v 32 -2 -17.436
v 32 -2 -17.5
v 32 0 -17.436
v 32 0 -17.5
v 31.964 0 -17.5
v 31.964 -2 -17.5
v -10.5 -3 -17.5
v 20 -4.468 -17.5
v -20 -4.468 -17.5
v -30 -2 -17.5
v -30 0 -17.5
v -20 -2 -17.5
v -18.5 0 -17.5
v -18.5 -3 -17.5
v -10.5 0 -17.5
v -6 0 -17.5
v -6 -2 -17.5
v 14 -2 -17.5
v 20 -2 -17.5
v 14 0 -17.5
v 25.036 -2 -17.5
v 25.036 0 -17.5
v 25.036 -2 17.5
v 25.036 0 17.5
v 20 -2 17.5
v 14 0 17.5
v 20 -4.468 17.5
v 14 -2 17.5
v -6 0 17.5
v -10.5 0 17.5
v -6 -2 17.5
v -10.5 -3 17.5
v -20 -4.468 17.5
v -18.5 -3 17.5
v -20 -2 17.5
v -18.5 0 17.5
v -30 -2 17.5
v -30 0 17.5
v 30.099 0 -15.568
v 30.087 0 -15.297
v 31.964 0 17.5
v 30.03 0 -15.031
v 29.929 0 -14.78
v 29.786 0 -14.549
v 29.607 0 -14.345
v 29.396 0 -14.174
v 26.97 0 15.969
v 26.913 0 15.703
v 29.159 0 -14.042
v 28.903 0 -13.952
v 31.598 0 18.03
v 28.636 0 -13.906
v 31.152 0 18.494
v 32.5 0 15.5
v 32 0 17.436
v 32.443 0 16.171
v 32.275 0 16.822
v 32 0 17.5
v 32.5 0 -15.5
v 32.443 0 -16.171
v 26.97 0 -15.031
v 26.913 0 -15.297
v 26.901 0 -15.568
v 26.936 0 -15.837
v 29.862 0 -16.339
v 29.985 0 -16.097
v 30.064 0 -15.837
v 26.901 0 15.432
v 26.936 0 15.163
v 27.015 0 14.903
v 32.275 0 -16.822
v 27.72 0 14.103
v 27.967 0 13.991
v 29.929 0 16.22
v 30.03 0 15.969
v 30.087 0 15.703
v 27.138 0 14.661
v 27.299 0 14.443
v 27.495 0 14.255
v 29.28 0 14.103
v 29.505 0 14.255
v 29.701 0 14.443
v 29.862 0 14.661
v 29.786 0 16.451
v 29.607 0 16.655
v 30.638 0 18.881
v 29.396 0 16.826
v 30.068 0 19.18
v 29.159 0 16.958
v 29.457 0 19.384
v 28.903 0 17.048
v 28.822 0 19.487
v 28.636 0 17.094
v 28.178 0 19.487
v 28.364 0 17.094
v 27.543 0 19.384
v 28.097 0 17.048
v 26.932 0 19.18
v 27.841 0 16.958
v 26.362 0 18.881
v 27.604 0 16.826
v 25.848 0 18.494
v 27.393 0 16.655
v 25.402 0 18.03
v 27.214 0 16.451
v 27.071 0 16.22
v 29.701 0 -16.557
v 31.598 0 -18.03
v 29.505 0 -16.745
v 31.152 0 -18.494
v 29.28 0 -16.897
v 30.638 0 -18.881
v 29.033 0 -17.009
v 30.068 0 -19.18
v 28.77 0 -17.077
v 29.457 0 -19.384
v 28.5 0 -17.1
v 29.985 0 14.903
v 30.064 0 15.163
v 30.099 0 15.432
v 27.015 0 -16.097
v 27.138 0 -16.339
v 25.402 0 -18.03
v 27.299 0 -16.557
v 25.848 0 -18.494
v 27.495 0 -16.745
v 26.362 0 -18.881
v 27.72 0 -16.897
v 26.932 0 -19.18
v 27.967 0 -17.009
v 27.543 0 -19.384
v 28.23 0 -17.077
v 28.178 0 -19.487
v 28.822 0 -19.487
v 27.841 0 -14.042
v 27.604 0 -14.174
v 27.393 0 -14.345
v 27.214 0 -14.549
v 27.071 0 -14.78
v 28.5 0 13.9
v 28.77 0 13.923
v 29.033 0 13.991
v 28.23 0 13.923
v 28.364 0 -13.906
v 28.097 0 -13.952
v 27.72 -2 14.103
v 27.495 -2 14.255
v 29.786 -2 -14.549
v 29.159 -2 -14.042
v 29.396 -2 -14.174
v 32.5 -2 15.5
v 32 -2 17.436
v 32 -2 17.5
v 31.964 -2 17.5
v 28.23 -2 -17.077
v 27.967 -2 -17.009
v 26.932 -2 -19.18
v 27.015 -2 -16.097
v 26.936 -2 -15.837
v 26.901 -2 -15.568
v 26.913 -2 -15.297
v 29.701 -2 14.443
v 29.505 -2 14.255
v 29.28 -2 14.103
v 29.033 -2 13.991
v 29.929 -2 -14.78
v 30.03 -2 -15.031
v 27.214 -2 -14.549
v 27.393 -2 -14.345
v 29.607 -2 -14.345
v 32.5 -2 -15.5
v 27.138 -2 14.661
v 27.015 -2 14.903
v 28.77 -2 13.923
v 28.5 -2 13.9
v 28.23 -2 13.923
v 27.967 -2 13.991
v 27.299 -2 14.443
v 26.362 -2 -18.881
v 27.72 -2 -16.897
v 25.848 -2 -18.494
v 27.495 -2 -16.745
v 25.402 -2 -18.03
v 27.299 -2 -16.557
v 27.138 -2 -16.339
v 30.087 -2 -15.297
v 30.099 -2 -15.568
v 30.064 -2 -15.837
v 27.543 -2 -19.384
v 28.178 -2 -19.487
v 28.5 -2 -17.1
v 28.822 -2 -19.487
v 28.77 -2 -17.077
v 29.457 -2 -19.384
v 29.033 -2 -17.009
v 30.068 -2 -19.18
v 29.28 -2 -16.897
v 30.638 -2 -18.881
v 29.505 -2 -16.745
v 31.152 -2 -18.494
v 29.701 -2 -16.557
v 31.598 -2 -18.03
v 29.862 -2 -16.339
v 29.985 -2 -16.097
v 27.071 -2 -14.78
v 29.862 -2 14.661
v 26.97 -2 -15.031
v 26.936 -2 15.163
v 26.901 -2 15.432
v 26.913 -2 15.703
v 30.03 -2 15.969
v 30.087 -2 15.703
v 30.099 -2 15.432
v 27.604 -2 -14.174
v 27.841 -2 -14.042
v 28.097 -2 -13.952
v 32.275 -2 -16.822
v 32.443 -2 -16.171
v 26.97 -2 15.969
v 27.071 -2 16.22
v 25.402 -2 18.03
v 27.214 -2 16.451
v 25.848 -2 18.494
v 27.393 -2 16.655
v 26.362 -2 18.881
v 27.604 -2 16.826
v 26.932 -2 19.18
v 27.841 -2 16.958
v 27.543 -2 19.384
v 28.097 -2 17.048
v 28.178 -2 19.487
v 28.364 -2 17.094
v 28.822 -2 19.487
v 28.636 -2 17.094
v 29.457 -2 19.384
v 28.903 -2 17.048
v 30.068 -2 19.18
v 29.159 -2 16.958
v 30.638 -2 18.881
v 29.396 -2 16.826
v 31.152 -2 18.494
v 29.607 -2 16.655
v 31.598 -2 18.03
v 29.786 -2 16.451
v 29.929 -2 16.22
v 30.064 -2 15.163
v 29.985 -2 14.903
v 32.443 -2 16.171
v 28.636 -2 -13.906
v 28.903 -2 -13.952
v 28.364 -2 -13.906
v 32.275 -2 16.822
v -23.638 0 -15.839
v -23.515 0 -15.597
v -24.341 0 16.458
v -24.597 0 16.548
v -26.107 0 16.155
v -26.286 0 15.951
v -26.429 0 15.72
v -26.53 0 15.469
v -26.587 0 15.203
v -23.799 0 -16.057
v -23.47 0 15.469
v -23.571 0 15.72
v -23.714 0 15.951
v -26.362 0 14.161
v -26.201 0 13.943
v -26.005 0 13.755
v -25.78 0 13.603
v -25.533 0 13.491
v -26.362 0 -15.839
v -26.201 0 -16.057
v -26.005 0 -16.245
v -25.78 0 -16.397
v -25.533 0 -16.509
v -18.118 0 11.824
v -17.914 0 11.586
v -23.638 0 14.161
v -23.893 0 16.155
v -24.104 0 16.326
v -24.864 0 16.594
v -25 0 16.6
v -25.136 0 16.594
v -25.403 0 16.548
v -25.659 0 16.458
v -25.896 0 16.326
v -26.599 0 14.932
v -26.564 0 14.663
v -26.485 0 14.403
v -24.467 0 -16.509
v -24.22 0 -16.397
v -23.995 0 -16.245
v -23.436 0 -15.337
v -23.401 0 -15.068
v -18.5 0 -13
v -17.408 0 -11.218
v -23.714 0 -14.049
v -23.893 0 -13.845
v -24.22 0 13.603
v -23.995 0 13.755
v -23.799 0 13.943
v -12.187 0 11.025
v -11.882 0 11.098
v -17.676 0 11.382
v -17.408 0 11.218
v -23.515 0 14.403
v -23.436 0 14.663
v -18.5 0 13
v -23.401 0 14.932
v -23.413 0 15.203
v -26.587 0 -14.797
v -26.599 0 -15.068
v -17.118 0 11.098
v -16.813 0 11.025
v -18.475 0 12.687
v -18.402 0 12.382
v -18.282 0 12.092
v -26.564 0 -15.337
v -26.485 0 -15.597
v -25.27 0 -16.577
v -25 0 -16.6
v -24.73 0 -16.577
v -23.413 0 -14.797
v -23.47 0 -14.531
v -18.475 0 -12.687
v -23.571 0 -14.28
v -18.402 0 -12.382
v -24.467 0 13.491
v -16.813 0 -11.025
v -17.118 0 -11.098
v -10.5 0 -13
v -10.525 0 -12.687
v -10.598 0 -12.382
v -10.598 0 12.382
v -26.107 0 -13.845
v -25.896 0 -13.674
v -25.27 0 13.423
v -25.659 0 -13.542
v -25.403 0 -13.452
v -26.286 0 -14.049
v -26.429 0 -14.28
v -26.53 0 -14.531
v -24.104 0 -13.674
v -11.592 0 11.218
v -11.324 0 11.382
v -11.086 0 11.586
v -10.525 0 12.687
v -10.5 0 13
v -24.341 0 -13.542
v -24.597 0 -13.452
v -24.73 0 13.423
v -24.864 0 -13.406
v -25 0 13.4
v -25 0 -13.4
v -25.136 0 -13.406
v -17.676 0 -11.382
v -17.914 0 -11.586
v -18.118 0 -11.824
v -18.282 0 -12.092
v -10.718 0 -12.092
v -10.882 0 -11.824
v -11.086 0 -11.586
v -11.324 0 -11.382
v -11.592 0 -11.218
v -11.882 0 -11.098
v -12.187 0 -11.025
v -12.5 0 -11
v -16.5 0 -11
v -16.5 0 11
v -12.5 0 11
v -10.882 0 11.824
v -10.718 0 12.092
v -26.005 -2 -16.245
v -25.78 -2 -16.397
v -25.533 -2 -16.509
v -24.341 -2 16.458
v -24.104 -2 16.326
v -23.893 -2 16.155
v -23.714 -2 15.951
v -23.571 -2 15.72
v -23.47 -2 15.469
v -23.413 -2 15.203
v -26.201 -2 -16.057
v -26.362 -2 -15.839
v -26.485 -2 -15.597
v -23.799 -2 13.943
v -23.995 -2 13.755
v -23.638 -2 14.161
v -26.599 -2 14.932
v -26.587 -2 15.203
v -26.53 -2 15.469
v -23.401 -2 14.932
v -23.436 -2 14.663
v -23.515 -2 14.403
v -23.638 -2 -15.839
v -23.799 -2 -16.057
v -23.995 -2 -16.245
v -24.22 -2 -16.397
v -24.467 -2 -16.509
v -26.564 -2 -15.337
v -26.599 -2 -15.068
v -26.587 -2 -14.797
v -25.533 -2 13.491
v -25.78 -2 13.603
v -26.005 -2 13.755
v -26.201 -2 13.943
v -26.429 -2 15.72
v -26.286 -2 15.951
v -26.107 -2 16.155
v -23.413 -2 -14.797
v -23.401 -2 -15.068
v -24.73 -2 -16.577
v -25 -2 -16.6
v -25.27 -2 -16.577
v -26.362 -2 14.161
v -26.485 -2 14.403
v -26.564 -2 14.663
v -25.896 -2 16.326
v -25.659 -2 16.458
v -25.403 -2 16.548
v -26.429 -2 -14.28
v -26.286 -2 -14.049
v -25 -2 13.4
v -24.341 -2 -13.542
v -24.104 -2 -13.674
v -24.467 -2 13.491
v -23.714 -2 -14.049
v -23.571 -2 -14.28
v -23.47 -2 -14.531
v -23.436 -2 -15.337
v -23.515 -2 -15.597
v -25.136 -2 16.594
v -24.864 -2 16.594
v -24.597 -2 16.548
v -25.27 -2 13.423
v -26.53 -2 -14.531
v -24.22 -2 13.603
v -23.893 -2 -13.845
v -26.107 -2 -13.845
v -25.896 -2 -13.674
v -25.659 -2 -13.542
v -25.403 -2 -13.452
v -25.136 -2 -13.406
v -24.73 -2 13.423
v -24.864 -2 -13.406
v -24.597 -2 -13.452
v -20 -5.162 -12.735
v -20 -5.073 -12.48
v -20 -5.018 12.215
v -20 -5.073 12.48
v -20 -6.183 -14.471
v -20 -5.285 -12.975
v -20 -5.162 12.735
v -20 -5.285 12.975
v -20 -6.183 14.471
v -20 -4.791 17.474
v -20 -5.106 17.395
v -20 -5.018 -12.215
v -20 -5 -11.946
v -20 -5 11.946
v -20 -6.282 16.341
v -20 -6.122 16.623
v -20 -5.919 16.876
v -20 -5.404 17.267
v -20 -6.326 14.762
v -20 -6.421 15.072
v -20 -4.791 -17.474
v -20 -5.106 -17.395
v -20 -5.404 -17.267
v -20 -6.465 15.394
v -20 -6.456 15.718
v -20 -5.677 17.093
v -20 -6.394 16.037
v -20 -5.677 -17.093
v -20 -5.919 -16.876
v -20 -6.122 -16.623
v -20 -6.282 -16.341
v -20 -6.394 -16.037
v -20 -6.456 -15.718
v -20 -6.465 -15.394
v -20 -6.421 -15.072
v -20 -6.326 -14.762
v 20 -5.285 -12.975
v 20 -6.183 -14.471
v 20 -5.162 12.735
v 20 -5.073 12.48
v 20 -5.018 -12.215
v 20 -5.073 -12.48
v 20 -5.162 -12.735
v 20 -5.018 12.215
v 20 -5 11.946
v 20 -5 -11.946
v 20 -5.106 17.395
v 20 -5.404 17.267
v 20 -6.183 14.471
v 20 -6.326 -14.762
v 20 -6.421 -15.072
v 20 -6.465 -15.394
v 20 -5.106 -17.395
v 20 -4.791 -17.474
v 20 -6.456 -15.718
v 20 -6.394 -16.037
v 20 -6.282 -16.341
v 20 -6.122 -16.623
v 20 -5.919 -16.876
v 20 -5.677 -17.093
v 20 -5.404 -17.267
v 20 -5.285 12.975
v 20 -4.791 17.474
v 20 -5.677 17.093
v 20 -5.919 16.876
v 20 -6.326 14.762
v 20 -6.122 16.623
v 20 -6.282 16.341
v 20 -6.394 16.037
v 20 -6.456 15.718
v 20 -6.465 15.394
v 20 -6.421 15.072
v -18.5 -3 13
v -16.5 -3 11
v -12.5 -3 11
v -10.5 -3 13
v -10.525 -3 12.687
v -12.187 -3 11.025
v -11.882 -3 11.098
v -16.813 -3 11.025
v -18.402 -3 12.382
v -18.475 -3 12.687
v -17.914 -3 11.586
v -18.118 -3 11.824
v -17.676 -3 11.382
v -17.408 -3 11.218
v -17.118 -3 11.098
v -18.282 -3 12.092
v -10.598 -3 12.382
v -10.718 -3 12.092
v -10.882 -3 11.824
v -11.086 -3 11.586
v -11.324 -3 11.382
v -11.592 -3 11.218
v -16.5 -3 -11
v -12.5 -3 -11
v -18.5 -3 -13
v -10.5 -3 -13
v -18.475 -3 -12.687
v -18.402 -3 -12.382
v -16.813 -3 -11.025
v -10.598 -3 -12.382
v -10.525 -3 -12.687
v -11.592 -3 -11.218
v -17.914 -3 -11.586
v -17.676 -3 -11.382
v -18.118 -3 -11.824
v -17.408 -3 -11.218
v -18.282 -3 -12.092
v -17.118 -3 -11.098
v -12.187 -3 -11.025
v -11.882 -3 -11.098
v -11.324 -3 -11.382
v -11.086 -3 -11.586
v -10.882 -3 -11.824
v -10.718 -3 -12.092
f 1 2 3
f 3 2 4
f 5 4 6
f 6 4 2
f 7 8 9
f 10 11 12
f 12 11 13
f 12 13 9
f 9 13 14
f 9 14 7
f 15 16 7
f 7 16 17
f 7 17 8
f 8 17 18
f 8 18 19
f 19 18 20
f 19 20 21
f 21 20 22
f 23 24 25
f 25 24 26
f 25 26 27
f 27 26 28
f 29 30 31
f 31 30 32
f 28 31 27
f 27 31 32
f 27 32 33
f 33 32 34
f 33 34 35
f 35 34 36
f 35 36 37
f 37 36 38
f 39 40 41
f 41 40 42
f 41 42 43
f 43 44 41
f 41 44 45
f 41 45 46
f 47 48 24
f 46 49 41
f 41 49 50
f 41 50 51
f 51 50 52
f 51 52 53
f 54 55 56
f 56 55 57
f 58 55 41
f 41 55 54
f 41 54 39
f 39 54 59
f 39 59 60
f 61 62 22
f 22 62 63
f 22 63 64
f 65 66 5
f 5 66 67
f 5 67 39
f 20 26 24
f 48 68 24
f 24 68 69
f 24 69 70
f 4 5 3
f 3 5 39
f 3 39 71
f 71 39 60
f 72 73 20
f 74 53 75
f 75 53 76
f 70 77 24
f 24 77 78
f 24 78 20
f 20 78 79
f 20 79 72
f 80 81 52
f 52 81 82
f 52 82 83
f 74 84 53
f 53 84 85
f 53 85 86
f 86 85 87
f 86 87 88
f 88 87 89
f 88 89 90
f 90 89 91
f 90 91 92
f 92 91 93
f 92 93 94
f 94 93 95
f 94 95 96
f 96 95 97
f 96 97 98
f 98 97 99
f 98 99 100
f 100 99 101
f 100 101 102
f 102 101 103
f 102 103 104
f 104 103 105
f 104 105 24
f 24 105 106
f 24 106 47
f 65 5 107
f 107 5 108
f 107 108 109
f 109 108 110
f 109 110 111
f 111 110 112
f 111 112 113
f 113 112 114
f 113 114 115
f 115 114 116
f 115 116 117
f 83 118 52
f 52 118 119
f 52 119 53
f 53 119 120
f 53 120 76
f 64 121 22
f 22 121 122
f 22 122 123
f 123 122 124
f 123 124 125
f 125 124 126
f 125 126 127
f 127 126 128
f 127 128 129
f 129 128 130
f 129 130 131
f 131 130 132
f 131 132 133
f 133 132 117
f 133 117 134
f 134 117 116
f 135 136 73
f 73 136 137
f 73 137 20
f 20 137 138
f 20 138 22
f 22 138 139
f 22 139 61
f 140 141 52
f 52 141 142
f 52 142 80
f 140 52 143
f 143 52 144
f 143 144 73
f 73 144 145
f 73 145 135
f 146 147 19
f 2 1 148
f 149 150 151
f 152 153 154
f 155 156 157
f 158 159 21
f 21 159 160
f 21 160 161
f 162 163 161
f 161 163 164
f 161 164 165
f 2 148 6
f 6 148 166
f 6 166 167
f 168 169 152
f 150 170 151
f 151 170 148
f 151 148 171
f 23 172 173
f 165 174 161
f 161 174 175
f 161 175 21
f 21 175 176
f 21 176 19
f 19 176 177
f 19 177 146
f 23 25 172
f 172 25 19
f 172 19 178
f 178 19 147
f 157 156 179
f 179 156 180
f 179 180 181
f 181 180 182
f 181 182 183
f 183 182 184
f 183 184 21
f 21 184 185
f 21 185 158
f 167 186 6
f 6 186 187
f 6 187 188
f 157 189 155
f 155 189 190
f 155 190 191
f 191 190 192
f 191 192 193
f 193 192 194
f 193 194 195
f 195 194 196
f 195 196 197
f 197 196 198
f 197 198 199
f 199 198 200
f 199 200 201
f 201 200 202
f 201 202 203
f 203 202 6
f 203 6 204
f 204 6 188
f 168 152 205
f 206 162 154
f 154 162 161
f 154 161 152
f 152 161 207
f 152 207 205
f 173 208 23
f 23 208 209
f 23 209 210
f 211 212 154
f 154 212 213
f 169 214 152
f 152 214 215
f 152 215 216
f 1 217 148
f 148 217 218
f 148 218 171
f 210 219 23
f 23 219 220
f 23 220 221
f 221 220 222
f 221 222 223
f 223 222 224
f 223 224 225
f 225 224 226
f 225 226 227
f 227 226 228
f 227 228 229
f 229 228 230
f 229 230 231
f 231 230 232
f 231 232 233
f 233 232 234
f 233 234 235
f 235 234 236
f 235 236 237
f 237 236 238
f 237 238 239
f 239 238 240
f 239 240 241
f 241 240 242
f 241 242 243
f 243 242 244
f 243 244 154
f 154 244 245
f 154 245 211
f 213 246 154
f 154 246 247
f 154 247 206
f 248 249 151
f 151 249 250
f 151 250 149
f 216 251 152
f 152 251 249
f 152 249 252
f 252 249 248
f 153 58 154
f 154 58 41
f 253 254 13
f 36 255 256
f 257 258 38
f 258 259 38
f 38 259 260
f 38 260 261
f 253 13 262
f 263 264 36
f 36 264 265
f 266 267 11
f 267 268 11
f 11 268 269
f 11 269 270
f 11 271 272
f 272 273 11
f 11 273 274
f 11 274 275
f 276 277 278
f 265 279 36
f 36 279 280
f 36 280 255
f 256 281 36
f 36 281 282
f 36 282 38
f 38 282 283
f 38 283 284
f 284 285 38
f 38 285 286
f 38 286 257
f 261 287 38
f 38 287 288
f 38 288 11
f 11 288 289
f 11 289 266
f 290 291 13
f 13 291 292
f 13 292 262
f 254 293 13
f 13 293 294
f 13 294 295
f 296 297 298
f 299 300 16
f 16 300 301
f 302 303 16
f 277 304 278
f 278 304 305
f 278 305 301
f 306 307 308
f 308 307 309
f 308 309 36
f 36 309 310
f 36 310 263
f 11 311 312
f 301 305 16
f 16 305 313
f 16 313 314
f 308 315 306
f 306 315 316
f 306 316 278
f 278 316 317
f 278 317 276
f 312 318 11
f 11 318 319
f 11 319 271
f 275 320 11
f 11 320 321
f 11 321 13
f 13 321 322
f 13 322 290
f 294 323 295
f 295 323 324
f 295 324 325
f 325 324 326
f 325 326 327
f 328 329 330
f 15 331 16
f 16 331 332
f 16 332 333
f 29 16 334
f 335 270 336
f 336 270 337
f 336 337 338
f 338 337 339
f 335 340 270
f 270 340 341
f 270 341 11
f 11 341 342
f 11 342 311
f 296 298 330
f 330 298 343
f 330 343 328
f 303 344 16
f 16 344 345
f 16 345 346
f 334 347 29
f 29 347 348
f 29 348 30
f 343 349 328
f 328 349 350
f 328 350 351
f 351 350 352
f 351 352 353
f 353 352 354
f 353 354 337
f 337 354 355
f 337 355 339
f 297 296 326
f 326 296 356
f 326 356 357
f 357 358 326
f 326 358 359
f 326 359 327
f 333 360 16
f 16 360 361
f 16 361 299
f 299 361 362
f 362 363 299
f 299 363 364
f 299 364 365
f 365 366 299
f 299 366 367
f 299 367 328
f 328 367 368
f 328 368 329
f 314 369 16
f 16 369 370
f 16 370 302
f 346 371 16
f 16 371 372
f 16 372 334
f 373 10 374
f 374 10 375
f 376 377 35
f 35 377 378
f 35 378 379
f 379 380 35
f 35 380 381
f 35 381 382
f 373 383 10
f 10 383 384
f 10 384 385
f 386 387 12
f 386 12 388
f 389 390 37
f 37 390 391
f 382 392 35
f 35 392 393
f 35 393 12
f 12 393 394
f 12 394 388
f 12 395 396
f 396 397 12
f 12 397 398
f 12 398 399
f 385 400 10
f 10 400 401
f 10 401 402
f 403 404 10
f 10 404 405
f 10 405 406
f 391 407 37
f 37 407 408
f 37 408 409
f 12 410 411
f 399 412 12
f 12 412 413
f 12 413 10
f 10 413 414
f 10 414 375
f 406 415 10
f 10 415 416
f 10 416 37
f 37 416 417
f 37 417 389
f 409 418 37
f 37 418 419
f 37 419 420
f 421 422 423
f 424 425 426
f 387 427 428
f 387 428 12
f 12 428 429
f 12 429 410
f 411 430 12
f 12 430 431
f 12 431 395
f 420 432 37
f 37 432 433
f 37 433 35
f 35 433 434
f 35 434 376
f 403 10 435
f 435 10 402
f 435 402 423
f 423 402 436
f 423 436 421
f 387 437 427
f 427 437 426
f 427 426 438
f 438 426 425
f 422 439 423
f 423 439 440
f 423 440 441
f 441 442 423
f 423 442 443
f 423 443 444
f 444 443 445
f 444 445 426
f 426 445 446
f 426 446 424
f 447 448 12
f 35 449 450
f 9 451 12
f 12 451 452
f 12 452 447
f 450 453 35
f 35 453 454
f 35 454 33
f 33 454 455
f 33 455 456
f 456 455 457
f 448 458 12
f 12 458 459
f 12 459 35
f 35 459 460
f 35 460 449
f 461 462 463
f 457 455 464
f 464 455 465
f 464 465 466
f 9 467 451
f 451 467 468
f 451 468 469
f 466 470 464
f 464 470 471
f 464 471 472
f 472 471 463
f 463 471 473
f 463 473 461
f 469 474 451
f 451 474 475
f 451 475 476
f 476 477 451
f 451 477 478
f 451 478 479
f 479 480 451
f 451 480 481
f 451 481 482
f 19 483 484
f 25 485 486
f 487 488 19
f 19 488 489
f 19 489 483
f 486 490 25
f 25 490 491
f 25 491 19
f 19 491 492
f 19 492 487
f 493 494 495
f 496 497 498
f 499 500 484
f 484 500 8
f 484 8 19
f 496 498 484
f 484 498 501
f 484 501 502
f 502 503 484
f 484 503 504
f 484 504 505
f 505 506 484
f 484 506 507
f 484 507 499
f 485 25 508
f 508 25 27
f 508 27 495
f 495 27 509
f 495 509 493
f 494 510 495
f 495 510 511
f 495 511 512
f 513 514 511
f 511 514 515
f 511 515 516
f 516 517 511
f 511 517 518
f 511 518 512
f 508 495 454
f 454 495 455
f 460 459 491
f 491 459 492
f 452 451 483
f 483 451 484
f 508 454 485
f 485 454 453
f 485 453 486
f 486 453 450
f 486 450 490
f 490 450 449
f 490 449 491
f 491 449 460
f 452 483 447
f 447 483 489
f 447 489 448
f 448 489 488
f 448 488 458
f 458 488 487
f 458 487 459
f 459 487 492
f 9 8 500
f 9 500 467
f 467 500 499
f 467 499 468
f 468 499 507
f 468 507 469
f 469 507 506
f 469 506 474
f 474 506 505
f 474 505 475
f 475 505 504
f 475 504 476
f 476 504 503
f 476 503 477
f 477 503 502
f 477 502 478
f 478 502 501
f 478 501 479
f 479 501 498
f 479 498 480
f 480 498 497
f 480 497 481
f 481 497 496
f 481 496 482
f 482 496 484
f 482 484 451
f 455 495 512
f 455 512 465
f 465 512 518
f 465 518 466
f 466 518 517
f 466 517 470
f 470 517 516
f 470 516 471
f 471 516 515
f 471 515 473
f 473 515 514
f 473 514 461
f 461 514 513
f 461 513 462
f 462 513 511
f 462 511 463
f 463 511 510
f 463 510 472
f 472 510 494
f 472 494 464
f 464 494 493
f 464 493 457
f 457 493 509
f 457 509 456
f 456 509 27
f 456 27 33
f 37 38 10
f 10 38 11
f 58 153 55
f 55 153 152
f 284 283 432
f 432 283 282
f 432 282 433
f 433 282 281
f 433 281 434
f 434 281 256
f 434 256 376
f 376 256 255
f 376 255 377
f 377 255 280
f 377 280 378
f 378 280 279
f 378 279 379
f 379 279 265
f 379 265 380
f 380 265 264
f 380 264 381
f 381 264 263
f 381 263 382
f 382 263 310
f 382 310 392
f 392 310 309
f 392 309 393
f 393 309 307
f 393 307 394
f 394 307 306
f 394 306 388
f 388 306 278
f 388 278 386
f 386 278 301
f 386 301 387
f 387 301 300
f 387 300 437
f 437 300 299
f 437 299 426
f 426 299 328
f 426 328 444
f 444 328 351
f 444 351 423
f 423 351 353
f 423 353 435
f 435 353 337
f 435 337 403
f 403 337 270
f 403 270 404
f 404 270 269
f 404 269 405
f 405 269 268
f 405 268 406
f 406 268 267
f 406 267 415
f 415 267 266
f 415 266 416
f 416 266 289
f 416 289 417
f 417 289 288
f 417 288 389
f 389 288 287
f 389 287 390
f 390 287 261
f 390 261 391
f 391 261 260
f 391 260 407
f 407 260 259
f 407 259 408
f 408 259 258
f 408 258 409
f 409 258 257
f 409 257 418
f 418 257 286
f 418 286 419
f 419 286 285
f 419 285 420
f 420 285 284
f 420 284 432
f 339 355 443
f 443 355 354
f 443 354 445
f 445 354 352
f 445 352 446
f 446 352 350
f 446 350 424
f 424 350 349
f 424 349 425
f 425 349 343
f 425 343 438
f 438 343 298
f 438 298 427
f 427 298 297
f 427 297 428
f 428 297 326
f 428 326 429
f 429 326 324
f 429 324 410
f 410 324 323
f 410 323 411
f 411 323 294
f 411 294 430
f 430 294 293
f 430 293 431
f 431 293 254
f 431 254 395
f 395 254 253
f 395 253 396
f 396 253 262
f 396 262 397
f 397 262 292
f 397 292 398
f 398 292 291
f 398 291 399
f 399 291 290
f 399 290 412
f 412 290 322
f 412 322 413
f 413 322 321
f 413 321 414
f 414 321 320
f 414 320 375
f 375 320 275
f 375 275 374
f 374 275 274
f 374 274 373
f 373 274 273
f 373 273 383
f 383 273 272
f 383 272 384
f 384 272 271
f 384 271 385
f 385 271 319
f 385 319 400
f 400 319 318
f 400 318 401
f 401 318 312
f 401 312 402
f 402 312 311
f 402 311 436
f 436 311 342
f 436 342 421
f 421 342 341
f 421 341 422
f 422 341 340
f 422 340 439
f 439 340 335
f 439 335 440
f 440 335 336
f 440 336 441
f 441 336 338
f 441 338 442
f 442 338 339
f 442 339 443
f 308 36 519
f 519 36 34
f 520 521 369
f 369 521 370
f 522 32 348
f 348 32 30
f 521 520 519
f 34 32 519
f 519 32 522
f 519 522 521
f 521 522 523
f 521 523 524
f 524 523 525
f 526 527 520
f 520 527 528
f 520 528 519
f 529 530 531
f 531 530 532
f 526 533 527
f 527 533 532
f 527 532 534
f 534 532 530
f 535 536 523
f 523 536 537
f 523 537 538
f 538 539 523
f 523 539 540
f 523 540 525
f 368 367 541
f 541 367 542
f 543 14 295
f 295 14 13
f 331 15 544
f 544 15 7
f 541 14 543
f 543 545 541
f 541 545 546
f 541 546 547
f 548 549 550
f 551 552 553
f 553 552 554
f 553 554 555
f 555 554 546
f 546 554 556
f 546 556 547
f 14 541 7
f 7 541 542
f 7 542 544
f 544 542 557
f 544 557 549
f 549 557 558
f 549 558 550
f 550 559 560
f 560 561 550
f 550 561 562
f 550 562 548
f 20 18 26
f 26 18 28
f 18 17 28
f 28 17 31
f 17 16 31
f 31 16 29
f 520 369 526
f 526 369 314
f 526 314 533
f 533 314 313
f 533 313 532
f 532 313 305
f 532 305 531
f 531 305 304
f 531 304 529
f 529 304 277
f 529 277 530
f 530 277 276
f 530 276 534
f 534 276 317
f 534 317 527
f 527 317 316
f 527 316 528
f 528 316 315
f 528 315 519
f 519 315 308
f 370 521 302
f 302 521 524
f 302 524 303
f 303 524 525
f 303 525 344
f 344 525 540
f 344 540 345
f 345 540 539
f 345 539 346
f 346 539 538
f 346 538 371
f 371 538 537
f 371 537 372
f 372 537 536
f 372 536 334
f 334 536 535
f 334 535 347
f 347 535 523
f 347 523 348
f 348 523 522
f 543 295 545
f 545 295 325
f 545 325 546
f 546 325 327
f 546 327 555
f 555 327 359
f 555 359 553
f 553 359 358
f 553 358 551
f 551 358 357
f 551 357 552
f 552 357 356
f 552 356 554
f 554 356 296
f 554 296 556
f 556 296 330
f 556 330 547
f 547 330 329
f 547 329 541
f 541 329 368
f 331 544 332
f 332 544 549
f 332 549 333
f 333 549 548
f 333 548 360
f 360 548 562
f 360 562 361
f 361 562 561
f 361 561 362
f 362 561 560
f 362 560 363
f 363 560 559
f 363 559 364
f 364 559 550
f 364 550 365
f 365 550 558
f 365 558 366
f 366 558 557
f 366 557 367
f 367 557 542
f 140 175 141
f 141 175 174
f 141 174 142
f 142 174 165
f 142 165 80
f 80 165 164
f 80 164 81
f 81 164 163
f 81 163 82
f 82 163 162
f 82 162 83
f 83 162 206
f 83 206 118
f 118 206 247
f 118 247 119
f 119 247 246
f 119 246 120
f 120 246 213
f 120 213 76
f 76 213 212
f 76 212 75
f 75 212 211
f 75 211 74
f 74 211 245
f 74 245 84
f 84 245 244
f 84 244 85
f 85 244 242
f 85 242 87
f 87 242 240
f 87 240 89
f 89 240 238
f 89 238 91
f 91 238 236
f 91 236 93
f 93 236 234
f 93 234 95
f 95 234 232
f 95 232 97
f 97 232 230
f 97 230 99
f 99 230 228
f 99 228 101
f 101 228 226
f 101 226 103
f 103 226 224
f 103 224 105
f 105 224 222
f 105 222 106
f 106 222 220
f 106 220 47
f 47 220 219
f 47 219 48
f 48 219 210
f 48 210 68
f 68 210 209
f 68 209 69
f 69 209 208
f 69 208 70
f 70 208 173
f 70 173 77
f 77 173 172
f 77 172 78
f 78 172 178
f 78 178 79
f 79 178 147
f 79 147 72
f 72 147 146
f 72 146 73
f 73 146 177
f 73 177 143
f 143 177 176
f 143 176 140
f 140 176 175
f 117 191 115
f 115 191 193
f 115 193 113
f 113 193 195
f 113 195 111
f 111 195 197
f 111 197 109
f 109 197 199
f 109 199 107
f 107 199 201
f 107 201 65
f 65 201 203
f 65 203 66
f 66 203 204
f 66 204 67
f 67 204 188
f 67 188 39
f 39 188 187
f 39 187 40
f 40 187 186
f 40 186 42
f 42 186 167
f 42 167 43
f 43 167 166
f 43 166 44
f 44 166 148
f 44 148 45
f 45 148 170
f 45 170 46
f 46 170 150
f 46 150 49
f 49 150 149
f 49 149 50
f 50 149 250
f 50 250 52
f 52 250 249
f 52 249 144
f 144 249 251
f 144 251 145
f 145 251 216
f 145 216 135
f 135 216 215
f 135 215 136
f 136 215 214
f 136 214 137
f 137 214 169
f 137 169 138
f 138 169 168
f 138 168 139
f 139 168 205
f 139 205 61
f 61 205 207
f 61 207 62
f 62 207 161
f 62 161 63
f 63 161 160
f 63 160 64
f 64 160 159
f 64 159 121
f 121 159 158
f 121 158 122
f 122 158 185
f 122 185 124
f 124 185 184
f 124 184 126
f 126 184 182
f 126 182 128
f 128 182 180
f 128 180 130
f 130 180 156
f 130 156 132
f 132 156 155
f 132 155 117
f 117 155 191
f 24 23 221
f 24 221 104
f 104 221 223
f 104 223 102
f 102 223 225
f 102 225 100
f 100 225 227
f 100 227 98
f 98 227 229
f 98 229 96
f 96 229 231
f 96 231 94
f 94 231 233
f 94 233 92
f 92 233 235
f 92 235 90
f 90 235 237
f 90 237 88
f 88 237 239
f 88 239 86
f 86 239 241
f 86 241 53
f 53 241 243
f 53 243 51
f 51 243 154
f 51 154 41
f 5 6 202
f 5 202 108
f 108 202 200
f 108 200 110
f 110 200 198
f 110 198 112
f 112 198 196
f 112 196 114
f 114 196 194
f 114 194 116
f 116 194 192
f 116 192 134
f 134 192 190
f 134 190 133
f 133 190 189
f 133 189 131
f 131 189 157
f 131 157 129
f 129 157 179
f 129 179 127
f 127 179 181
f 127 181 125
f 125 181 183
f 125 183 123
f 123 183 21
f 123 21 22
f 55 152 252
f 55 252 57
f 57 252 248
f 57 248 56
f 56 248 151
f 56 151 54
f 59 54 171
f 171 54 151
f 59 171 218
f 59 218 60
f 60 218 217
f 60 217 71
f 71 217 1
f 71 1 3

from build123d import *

# Parameters (mm, degrees)
SKETCH1_W               = 40
SKETCH1_H               = 35
BOSS_EXTRUDE1_DEPTH     = 8
CUT_EXTRUDE1_DEPTH      = 1
CUT_EXTRUDE1_DEPTH_BACK = 41
FILLET1_R               = 2
SKETCH4_W               = 35
SKETCH4_H               = 2
BOSS_EXTRUDE2_DEPTH     = 10
SKETCH5_W               = 35
SKETCH5_H               = 2
BOSS_EXTRUDE3_DEPTH     = 12
SKETCH6_R               = 1.6
CUT_EXTRUDE2_DEPTH      = 10
SKETCH7_W               = 8
SKETCH7_H               = 6.5
SKETCH7_H_2             = 8
CUT_EXTRUDE3_DEPTH      = 3
SKETCH8_W               = 20
SKETCH8_H               = 2
CUT_EXTRUDE5_DEPTH      = 36
FILLET2_R               = 2
SKETCH10_R              = 1.6
CUT_EXTRUDE6_DEPTH      = 3
BOSS_EXTRUDE4_DEPTH     = 2


with BuildPart() as part:
    # Sketch1 → Boss-Extrude1 (new body)
    with BuildSketch(Plane(origin=(0, 0, 0), x_dir=(1, 0, 0), z_dir=(0, 1, 0))):
        Rectangle(SKETCH1_W, SKETCH1_H)
    extrude(amount=-BOSS_EXTRUDE1_DEPTH)

    # Sketch2 → Cut-Extrude1 (cut, two sides)
    with BuildSketch(Plane(origin=(20, 0, 0), x_dir=(0, 0, -1), z_dir=(1, 0, 0))) as cut_extrude1_sk:
        Polygon((-12.5, -5), (-17.5, -8), (0, -8), (0, -5), align=None)
        Polygon((0, -5), (0, -8), (17.5, -8), (12.5, -5), align=None)
    extrude(amount=CUT_EXTRUDE1_DEPTH, mode=Mode.SUBTRACT)
    extrude(cut_extrude1_sk.sketch, amount=-CUT_EXTRUDE1_DEPTH_BACK, mode=Mode.SUBTRACT)

    # Fillet1
    fillet1_edges = [part.edges().sort_by_distance(p)[0] for p in [
        (0, -8, -17.5),
        (0, -5, 12.5),
        (0, -5, -12.5),
        (0, -8, 17.5),
    ]]
    fillet(fillet1_edges, radius=FILLET1_R)

    # Sketch4 → Boss-Extrude2 (add)
    with BuildSketch(Plane.ZY.offset(20)):
        with Locations((0, -1)):
            Rectangle(SKETCH4_W, SKETCH4_H)
    extrude(amount=BOSS_EXTRUDE2_DEPTH)

    # Sketch5 → Boss-Extrude3 (add)
    with BuildSketch(Plane(origin=(20, 0, 0), x_dir=(0, 0, -1), z_dir=(1, 0, 0))):
        with Locations((0, -1)):
            Rectangle(SKETCH5_W, SKETCH5_H)
    extrude(amount=BOSS_EXTRUDE3_DEPTH)

    # Sketch6 → Cut-Extrude2 (cut)
    with BuildSketch(Plane.XZ.offset(2)):
        with Locations((-25, 15)):
            Circle(SKETCH6_R)
        with Locations((-25, -15)):
            Circle(SKETCH6_R)
    extrude(amount=-CUT_EXTRUDE2_DEPTH, mode=Mode.SUBTRACT)

    # Sketch7 → Cut-Extrude3 (cut)
    with BuildSketch(Plane(origin=(0, 0, 0), x_dir=(1, 0, 0), z_dir=(0, 1, 0))):
        with Locations((-14.5, 14.25)):
            Rectangle(SKETCH7_W, SKETCH7_H)
        with Locations((-14.5, -15)):
            Rectangle(SKETCH7_W, SKETCH7_H_2)
    extrude(amount=-CUT_EXTRUDE3_DEPTH, mode=Mode.SUBTRACT)

    # Sketch8 → Cut-Extrude5 (cut, through all)
    with BuildSketch(Plane.XY.offset(17.5)):
        with Locations((4, -1)):
            Rectangle(SKETCH8_W, SKETCH8_H)
    extrude(amount=-CUT_EXTRUDE5_DEPTH, mode=Mode.SUBTRACT)

    # Fillet2
    fillet2_edges = [part.edges().sort_by_distance(p)[0] for p in [
        (-10.5, -1.5, -11),
        (-18.5, -1.5, -11),
        (-18.5, -1.5, 11),
        (-10.5, -1.5, 11),
    ]]
    fillet(fillet2_edges, radius=FILLET2_R)

    # Sketch10 → Cut-Extrude6 (cut, through all)
    with BuildSketch(Plane.XZ.offset(2)):
        with Locations((28.5, 15.5)):
            Circle(SKETCH10_R)
        with Locations((28.5, -15.5)):
            Circle(SKETCH10_R)
    extrude(amount=-CUT_EXTRUDE6_DEPTH, mode=Mode.SUBTRACT)

    # Sketch10<4> → Boss-Extrude4 (add)
    with BuildSketch(Plane.XZ.offset(2)):
        with BuildLine():
            ThreePointArc((31.964101615, 17.5), (28.5, 19.5), (25.035898385, 17.5))
            Line((25.035898385, 17.5), (31.964101615, 17.5))
        make_face()
        with BuildLine():
            Line((32, 17.436491673), (32, 13.563508327))
            ThreePointArc((32, 13.563508327), (32.372983346, 14.5), (32.5, 15.5))
            ThreePointArc((32.5, 15.5), (32.372983346, 16.5), (32, 17.436491673))
        make_face()
        with BuildLine():
            Line((31.964101615, -17.5), (25.035898385, -17.5))
            ThreePointArc((25.035898385, -17.5), (28.5, -19.5), (31.964101615, -17.5))
        make_face()
        with BuildLine():
            ThreePointArc((32.5, -15.5), (32.372983346, -14.5), (32, -13.563508327))
            Line((32, -13.563508327), (32, -17.436491673))
            ThreePointArc((32, -17.436491673), (32.372983346, -16.5), (32.5, -15.5))
        make_face()
        with BuildLine():
            ThreePointArc((32.5, 15.5), (32.372983346, 14.5), (32, 13.563508327))
            Line((32, 13.563508327), (32, -13.563508327))
            ThreePointArc((32, -13.563508327), (32.372983346, -14.5), (32.5, -15.5))
            Line((32.5, -15.5), (32.5, 15.5))
        make_face()
    extrude(amount=-BOSS_EXTRUDE4_DEPTH)


solid = part.part
